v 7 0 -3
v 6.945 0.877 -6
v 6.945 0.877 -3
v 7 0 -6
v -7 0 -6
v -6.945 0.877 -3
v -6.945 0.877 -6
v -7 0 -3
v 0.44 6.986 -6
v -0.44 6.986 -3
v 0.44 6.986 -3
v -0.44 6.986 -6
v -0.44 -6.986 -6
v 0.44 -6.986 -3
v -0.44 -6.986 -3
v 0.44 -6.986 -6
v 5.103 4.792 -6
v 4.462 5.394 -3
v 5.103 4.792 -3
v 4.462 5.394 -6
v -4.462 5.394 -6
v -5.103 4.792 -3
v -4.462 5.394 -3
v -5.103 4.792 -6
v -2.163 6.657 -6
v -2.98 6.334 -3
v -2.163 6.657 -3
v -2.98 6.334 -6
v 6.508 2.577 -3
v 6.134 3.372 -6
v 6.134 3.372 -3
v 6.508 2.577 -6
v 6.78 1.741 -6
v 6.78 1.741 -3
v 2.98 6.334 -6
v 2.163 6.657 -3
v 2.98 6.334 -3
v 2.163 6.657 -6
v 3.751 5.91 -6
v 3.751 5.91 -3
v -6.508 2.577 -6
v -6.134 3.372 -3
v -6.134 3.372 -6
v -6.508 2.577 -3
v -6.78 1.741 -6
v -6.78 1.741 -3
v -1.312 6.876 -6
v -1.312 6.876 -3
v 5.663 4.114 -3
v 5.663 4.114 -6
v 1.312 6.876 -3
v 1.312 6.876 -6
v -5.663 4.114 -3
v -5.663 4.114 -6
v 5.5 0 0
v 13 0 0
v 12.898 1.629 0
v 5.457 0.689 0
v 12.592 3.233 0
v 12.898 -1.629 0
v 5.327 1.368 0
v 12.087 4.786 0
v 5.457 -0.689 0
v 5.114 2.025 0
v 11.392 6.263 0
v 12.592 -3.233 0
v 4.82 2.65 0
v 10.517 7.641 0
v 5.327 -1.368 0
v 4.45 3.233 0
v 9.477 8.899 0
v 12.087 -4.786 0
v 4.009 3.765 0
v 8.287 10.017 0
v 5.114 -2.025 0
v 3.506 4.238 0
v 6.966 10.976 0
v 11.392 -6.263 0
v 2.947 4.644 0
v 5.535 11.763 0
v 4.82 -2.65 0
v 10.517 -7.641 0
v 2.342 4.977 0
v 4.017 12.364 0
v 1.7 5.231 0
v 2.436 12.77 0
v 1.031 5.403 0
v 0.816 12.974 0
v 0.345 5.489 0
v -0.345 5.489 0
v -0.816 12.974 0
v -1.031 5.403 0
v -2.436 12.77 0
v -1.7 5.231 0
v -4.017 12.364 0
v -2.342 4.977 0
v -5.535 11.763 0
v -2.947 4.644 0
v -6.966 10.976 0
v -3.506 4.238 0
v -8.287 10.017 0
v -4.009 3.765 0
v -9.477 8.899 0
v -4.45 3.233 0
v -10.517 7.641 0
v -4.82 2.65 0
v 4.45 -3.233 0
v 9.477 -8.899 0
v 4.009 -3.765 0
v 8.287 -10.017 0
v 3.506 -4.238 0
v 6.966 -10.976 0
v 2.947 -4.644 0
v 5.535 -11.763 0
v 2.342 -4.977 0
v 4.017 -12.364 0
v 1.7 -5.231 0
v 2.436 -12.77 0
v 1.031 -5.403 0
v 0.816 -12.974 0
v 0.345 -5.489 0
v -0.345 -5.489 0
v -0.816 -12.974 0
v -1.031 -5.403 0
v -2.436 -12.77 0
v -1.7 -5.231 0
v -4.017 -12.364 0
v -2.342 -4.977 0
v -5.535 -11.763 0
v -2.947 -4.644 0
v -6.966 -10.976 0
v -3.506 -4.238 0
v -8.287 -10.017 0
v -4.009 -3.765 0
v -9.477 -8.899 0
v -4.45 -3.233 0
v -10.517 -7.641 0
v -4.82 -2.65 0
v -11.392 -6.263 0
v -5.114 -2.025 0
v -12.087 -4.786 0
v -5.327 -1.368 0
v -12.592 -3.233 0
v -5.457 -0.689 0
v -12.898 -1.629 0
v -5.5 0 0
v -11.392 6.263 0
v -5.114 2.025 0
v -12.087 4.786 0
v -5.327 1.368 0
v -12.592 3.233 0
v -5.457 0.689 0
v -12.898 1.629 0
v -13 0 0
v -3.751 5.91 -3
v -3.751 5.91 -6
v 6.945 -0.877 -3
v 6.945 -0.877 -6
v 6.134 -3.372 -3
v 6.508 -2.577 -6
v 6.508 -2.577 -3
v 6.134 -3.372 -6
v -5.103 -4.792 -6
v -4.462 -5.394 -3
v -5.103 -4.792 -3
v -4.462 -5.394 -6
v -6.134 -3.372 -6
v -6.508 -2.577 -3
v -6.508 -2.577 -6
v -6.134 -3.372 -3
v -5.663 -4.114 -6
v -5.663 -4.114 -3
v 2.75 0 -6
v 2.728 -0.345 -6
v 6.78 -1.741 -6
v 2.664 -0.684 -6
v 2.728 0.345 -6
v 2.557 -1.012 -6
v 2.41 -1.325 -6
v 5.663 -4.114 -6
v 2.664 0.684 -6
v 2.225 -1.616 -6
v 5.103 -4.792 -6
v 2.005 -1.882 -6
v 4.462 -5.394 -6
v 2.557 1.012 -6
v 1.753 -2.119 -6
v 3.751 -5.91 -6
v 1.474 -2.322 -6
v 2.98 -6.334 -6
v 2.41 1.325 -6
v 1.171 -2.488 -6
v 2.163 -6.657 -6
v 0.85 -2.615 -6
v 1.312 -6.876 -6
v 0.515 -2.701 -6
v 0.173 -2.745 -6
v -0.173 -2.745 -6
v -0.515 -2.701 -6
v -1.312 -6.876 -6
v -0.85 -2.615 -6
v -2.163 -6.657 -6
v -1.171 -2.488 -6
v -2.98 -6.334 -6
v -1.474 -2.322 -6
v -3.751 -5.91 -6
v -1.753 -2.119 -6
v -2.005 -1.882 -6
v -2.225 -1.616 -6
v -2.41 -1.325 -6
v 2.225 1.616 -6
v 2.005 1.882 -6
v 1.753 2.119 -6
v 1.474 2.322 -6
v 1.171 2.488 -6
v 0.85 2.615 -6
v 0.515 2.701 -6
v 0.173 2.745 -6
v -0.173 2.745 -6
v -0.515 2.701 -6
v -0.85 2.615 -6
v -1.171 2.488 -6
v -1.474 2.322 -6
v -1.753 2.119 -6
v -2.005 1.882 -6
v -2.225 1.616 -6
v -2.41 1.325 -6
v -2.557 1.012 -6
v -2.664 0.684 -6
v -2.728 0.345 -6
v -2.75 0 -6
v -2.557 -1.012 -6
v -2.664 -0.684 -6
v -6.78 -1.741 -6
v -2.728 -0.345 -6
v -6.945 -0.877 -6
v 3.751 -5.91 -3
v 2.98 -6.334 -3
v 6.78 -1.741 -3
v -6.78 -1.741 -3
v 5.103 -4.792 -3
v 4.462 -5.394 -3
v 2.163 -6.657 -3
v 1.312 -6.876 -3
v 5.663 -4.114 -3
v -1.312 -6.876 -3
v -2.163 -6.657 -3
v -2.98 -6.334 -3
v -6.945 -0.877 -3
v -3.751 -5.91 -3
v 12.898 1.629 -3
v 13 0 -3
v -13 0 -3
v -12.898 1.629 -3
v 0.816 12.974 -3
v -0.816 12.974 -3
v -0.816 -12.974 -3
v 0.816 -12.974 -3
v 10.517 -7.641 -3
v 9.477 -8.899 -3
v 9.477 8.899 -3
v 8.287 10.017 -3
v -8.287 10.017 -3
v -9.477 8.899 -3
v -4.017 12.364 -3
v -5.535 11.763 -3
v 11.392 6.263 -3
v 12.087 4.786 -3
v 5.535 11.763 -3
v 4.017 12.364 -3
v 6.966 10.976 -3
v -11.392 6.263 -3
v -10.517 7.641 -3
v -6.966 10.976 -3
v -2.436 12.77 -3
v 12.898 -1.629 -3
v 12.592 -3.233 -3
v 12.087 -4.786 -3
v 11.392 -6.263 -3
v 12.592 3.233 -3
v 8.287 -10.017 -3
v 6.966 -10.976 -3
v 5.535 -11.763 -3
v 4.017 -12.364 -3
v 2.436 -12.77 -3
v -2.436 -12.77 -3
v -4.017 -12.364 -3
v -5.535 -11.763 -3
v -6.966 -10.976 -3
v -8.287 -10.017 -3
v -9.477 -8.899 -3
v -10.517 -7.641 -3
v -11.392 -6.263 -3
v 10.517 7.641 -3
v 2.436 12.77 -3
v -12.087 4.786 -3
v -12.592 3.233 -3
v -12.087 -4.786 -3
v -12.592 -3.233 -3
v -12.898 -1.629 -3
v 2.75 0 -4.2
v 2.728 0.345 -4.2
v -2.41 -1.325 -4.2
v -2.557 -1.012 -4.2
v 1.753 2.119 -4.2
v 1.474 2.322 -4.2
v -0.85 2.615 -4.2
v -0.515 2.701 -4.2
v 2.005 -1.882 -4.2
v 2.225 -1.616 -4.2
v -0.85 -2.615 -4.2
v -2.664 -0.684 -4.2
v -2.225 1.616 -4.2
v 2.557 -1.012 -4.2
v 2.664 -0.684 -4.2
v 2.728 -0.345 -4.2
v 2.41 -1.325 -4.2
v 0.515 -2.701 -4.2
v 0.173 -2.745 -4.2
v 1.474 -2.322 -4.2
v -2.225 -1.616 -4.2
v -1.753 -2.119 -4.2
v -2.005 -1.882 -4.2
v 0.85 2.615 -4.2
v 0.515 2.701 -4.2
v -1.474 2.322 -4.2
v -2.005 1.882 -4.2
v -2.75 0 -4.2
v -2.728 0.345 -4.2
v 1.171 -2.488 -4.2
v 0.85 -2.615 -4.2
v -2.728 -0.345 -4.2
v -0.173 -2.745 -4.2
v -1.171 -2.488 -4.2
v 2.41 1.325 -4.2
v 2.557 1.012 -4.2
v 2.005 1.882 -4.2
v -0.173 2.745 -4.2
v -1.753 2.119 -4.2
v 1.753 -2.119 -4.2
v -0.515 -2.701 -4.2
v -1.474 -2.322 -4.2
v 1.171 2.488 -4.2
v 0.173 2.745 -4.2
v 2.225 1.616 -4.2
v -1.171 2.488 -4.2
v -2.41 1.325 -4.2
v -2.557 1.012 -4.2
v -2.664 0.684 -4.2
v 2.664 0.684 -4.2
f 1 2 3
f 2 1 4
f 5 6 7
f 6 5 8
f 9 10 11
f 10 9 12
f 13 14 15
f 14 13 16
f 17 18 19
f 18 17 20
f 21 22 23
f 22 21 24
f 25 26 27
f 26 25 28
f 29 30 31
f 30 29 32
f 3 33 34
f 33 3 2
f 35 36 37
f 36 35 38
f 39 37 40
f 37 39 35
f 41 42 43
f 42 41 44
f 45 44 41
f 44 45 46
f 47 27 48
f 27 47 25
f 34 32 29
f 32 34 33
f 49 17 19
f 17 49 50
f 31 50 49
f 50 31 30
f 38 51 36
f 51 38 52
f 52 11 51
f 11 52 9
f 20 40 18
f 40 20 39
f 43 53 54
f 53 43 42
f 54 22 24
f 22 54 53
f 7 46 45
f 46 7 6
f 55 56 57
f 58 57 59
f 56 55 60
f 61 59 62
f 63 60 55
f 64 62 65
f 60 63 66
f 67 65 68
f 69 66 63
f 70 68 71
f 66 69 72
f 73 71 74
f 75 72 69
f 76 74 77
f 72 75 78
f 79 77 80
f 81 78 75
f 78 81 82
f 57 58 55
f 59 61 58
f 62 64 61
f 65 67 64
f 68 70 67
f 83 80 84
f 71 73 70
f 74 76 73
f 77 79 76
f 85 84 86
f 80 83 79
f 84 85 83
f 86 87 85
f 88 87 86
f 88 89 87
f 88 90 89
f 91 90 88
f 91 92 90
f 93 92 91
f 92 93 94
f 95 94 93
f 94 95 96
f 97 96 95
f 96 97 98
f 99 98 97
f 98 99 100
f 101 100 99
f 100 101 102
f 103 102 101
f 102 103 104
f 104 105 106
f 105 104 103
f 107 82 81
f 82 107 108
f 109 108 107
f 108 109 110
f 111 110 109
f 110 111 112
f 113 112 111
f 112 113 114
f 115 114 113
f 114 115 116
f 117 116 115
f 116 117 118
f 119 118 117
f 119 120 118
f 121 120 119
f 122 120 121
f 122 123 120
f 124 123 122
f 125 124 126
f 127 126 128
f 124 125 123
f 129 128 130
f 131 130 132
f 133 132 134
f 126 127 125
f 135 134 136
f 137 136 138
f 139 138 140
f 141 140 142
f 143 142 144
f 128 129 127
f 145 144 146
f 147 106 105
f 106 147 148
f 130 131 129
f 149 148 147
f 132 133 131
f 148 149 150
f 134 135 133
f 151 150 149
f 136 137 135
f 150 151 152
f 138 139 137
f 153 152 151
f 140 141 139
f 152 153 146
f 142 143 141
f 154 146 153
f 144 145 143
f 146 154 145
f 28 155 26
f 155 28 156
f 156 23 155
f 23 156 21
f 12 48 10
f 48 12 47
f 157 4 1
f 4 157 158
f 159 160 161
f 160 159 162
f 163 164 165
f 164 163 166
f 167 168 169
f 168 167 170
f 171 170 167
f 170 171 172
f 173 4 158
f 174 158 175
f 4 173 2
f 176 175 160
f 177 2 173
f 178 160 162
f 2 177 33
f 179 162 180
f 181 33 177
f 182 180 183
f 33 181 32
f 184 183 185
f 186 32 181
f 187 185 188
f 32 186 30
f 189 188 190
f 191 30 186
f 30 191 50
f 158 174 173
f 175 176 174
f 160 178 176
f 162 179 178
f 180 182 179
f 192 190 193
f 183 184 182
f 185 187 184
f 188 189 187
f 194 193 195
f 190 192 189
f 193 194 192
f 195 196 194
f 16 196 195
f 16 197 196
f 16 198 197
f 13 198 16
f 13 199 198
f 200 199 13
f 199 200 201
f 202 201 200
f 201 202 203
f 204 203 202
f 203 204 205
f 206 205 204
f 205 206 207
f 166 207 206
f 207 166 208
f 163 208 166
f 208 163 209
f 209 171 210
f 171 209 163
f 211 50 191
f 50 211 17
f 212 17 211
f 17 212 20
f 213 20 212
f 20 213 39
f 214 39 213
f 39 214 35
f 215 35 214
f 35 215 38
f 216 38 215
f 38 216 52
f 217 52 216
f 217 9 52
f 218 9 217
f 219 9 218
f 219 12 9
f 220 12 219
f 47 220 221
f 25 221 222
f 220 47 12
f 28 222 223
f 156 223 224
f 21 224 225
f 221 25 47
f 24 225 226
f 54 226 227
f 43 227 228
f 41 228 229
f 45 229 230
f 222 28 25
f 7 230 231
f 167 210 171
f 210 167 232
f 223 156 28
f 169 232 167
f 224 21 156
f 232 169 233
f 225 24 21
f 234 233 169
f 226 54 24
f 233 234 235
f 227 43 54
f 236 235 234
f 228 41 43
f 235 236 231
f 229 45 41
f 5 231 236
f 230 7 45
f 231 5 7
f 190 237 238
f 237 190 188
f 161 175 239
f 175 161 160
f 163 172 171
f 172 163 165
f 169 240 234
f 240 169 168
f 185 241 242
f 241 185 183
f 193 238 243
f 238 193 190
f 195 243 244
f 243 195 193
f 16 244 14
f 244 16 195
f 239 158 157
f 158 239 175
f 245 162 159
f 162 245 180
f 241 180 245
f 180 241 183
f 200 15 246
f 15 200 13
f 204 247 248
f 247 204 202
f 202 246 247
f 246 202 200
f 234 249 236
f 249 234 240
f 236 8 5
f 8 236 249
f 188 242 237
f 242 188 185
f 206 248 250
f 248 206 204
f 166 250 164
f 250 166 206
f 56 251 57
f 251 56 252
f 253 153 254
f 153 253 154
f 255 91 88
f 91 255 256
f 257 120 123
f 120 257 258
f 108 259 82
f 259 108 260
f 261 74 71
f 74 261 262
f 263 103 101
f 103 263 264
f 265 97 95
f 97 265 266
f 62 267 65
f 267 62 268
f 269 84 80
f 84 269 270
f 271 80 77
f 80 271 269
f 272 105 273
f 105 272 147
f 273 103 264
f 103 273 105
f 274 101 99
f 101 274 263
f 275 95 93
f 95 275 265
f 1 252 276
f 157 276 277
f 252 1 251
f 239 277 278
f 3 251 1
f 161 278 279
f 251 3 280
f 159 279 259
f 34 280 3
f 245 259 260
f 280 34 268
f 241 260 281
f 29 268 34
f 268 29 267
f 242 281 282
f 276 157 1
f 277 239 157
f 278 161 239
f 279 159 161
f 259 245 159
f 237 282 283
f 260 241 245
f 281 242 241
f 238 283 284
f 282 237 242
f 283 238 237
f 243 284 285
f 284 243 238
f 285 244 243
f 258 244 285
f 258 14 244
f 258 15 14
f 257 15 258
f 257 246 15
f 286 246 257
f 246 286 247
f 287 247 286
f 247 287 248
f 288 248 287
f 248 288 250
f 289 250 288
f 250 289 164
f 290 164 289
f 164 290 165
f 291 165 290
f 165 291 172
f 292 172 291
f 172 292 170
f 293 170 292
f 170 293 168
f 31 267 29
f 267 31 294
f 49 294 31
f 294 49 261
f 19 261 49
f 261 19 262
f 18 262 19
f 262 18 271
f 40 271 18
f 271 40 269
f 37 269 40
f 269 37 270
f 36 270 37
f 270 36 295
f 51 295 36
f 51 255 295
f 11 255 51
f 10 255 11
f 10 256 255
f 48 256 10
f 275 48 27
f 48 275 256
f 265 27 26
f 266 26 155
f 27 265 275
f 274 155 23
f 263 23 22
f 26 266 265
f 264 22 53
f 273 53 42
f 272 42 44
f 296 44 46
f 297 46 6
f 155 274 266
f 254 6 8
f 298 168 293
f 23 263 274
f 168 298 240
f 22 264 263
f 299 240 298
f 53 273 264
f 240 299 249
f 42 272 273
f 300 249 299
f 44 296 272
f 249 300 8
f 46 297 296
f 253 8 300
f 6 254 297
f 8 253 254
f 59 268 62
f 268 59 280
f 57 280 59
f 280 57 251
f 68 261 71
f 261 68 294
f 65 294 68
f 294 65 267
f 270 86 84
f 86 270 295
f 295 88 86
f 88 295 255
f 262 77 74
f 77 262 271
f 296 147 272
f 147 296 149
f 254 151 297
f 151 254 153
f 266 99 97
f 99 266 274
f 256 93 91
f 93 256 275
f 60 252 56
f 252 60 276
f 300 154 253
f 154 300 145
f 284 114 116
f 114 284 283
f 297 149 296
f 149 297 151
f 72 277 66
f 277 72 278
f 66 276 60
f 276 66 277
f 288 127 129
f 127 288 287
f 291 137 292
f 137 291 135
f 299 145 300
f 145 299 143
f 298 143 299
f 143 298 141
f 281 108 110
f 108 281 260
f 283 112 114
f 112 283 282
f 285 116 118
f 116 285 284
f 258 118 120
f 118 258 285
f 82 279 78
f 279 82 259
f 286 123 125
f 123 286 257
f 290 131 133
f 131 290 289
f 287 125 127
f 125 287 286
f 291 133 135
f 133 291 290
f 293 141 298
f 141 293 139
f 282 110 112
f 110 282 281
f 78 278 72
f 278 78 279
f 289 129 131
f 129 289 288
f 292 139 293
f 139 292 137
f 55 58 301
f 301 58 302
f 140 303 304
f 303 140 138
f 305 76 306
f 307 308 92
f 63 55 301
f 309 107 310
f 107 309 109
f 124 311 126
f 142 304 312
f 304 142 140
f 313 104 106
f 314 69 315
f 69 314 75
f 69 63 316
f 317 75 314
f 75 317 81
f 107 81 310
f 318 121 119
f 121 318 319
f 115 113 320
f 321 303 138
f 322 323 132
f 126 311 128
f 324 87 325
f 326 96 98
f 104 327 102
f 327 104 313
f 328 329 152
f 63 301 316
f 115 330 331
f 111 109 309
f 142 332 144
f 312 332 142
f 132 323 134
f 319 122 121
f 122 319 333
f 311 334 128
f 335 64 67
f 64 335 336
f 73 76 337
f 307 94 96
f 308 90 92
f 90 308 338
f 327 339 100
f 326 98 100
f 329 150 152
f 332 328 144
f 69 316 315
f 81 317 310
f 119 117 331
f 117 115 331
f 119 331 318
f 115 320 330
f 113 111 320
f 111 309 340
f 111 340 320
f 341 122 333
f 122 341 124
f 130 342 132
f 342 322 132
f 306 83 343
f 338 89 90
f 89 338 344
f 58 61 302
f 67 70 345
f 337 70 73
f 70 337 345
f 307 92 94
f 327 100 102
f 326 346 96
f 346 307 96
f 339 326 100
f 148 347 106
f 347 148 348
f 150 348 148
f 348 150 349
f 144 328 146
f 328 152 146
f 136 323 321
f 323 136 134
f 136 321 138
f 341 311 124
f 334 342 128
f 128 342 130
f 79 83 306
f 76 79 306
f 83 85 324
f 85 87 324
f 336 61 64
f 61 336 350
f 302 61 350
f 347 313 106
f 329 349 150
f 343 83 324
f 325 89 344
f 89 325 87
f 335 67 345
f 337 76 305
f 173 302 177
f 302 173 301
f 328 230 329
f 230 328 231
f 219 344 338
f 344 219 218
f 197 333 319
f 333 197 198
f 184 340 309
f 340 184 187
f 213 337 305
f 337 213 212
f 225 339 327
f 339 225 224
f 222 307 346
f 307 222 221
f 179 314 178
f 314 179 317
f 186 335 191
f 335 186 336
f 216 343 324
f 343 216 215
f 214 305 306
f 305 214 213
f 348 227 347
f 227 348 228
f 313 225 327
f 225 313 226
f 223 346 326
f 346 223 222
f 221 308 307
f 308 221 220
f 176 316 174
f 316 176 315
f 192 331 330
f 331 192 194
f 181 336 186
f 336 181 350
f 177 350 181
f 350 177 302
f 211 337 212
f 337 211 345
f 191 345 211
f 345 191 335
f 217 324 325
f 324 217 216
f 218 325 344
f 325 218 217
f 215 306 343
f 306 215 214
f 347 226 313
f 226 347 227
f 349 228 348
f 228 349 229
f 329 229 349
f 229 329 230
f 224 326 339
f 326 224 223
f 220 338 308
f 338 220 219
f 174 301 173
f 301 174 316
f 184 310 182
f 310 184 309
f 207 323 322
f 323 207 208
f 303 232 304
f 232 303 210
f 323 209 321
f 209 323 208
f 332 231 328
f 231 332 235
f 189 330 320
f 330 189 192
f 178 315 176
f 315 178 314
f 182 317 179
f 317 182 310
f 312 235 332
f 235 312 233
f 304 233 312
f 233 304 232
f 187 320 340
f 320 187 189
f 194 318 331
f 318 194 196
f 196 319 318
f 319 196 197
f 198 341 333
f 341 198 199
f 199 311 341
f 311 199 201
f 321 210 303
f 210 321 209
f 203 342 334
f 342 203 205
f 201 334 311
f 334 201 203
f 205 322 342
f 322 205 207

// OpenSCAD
$fn = 50;


difference() {
	union() {
		translate(v = [0, 0, -6.0000000000]) {
			cylinder(h = 6, r = 7.0000000000);
		}
		translate(v = [0, 0, -3.0000000000]) {
			cylinder(h = 3, r = 13.0000000000);
		}
	}
	union() {
		translate(v = [0, 0, 0]) {
			rotate(a = [0, 0, 0]) {
				difference() {
					union() {
						#translate(v = [0, 0, -6.0000000000]) {
							cylinder(h = 6, r = 2.2500000000);
						}
						#translate(v = [0, 0, -4.2000000000]) {
							cylinder(h = 4.2000000000, r1 = 2.7500000000, r2 = 5.5000000000);
						}
						#translate(v = [0, 0, -6.0000000000]) {
							cylinder(h = 6, r = 2.7500000000);
						}
						#translate(v = [0, 0, -6.0000000000]) {
							cylinder(h = 6, r = 2.2500000000);
						}
					}
					union();
				}
			}
		}
	}
}
